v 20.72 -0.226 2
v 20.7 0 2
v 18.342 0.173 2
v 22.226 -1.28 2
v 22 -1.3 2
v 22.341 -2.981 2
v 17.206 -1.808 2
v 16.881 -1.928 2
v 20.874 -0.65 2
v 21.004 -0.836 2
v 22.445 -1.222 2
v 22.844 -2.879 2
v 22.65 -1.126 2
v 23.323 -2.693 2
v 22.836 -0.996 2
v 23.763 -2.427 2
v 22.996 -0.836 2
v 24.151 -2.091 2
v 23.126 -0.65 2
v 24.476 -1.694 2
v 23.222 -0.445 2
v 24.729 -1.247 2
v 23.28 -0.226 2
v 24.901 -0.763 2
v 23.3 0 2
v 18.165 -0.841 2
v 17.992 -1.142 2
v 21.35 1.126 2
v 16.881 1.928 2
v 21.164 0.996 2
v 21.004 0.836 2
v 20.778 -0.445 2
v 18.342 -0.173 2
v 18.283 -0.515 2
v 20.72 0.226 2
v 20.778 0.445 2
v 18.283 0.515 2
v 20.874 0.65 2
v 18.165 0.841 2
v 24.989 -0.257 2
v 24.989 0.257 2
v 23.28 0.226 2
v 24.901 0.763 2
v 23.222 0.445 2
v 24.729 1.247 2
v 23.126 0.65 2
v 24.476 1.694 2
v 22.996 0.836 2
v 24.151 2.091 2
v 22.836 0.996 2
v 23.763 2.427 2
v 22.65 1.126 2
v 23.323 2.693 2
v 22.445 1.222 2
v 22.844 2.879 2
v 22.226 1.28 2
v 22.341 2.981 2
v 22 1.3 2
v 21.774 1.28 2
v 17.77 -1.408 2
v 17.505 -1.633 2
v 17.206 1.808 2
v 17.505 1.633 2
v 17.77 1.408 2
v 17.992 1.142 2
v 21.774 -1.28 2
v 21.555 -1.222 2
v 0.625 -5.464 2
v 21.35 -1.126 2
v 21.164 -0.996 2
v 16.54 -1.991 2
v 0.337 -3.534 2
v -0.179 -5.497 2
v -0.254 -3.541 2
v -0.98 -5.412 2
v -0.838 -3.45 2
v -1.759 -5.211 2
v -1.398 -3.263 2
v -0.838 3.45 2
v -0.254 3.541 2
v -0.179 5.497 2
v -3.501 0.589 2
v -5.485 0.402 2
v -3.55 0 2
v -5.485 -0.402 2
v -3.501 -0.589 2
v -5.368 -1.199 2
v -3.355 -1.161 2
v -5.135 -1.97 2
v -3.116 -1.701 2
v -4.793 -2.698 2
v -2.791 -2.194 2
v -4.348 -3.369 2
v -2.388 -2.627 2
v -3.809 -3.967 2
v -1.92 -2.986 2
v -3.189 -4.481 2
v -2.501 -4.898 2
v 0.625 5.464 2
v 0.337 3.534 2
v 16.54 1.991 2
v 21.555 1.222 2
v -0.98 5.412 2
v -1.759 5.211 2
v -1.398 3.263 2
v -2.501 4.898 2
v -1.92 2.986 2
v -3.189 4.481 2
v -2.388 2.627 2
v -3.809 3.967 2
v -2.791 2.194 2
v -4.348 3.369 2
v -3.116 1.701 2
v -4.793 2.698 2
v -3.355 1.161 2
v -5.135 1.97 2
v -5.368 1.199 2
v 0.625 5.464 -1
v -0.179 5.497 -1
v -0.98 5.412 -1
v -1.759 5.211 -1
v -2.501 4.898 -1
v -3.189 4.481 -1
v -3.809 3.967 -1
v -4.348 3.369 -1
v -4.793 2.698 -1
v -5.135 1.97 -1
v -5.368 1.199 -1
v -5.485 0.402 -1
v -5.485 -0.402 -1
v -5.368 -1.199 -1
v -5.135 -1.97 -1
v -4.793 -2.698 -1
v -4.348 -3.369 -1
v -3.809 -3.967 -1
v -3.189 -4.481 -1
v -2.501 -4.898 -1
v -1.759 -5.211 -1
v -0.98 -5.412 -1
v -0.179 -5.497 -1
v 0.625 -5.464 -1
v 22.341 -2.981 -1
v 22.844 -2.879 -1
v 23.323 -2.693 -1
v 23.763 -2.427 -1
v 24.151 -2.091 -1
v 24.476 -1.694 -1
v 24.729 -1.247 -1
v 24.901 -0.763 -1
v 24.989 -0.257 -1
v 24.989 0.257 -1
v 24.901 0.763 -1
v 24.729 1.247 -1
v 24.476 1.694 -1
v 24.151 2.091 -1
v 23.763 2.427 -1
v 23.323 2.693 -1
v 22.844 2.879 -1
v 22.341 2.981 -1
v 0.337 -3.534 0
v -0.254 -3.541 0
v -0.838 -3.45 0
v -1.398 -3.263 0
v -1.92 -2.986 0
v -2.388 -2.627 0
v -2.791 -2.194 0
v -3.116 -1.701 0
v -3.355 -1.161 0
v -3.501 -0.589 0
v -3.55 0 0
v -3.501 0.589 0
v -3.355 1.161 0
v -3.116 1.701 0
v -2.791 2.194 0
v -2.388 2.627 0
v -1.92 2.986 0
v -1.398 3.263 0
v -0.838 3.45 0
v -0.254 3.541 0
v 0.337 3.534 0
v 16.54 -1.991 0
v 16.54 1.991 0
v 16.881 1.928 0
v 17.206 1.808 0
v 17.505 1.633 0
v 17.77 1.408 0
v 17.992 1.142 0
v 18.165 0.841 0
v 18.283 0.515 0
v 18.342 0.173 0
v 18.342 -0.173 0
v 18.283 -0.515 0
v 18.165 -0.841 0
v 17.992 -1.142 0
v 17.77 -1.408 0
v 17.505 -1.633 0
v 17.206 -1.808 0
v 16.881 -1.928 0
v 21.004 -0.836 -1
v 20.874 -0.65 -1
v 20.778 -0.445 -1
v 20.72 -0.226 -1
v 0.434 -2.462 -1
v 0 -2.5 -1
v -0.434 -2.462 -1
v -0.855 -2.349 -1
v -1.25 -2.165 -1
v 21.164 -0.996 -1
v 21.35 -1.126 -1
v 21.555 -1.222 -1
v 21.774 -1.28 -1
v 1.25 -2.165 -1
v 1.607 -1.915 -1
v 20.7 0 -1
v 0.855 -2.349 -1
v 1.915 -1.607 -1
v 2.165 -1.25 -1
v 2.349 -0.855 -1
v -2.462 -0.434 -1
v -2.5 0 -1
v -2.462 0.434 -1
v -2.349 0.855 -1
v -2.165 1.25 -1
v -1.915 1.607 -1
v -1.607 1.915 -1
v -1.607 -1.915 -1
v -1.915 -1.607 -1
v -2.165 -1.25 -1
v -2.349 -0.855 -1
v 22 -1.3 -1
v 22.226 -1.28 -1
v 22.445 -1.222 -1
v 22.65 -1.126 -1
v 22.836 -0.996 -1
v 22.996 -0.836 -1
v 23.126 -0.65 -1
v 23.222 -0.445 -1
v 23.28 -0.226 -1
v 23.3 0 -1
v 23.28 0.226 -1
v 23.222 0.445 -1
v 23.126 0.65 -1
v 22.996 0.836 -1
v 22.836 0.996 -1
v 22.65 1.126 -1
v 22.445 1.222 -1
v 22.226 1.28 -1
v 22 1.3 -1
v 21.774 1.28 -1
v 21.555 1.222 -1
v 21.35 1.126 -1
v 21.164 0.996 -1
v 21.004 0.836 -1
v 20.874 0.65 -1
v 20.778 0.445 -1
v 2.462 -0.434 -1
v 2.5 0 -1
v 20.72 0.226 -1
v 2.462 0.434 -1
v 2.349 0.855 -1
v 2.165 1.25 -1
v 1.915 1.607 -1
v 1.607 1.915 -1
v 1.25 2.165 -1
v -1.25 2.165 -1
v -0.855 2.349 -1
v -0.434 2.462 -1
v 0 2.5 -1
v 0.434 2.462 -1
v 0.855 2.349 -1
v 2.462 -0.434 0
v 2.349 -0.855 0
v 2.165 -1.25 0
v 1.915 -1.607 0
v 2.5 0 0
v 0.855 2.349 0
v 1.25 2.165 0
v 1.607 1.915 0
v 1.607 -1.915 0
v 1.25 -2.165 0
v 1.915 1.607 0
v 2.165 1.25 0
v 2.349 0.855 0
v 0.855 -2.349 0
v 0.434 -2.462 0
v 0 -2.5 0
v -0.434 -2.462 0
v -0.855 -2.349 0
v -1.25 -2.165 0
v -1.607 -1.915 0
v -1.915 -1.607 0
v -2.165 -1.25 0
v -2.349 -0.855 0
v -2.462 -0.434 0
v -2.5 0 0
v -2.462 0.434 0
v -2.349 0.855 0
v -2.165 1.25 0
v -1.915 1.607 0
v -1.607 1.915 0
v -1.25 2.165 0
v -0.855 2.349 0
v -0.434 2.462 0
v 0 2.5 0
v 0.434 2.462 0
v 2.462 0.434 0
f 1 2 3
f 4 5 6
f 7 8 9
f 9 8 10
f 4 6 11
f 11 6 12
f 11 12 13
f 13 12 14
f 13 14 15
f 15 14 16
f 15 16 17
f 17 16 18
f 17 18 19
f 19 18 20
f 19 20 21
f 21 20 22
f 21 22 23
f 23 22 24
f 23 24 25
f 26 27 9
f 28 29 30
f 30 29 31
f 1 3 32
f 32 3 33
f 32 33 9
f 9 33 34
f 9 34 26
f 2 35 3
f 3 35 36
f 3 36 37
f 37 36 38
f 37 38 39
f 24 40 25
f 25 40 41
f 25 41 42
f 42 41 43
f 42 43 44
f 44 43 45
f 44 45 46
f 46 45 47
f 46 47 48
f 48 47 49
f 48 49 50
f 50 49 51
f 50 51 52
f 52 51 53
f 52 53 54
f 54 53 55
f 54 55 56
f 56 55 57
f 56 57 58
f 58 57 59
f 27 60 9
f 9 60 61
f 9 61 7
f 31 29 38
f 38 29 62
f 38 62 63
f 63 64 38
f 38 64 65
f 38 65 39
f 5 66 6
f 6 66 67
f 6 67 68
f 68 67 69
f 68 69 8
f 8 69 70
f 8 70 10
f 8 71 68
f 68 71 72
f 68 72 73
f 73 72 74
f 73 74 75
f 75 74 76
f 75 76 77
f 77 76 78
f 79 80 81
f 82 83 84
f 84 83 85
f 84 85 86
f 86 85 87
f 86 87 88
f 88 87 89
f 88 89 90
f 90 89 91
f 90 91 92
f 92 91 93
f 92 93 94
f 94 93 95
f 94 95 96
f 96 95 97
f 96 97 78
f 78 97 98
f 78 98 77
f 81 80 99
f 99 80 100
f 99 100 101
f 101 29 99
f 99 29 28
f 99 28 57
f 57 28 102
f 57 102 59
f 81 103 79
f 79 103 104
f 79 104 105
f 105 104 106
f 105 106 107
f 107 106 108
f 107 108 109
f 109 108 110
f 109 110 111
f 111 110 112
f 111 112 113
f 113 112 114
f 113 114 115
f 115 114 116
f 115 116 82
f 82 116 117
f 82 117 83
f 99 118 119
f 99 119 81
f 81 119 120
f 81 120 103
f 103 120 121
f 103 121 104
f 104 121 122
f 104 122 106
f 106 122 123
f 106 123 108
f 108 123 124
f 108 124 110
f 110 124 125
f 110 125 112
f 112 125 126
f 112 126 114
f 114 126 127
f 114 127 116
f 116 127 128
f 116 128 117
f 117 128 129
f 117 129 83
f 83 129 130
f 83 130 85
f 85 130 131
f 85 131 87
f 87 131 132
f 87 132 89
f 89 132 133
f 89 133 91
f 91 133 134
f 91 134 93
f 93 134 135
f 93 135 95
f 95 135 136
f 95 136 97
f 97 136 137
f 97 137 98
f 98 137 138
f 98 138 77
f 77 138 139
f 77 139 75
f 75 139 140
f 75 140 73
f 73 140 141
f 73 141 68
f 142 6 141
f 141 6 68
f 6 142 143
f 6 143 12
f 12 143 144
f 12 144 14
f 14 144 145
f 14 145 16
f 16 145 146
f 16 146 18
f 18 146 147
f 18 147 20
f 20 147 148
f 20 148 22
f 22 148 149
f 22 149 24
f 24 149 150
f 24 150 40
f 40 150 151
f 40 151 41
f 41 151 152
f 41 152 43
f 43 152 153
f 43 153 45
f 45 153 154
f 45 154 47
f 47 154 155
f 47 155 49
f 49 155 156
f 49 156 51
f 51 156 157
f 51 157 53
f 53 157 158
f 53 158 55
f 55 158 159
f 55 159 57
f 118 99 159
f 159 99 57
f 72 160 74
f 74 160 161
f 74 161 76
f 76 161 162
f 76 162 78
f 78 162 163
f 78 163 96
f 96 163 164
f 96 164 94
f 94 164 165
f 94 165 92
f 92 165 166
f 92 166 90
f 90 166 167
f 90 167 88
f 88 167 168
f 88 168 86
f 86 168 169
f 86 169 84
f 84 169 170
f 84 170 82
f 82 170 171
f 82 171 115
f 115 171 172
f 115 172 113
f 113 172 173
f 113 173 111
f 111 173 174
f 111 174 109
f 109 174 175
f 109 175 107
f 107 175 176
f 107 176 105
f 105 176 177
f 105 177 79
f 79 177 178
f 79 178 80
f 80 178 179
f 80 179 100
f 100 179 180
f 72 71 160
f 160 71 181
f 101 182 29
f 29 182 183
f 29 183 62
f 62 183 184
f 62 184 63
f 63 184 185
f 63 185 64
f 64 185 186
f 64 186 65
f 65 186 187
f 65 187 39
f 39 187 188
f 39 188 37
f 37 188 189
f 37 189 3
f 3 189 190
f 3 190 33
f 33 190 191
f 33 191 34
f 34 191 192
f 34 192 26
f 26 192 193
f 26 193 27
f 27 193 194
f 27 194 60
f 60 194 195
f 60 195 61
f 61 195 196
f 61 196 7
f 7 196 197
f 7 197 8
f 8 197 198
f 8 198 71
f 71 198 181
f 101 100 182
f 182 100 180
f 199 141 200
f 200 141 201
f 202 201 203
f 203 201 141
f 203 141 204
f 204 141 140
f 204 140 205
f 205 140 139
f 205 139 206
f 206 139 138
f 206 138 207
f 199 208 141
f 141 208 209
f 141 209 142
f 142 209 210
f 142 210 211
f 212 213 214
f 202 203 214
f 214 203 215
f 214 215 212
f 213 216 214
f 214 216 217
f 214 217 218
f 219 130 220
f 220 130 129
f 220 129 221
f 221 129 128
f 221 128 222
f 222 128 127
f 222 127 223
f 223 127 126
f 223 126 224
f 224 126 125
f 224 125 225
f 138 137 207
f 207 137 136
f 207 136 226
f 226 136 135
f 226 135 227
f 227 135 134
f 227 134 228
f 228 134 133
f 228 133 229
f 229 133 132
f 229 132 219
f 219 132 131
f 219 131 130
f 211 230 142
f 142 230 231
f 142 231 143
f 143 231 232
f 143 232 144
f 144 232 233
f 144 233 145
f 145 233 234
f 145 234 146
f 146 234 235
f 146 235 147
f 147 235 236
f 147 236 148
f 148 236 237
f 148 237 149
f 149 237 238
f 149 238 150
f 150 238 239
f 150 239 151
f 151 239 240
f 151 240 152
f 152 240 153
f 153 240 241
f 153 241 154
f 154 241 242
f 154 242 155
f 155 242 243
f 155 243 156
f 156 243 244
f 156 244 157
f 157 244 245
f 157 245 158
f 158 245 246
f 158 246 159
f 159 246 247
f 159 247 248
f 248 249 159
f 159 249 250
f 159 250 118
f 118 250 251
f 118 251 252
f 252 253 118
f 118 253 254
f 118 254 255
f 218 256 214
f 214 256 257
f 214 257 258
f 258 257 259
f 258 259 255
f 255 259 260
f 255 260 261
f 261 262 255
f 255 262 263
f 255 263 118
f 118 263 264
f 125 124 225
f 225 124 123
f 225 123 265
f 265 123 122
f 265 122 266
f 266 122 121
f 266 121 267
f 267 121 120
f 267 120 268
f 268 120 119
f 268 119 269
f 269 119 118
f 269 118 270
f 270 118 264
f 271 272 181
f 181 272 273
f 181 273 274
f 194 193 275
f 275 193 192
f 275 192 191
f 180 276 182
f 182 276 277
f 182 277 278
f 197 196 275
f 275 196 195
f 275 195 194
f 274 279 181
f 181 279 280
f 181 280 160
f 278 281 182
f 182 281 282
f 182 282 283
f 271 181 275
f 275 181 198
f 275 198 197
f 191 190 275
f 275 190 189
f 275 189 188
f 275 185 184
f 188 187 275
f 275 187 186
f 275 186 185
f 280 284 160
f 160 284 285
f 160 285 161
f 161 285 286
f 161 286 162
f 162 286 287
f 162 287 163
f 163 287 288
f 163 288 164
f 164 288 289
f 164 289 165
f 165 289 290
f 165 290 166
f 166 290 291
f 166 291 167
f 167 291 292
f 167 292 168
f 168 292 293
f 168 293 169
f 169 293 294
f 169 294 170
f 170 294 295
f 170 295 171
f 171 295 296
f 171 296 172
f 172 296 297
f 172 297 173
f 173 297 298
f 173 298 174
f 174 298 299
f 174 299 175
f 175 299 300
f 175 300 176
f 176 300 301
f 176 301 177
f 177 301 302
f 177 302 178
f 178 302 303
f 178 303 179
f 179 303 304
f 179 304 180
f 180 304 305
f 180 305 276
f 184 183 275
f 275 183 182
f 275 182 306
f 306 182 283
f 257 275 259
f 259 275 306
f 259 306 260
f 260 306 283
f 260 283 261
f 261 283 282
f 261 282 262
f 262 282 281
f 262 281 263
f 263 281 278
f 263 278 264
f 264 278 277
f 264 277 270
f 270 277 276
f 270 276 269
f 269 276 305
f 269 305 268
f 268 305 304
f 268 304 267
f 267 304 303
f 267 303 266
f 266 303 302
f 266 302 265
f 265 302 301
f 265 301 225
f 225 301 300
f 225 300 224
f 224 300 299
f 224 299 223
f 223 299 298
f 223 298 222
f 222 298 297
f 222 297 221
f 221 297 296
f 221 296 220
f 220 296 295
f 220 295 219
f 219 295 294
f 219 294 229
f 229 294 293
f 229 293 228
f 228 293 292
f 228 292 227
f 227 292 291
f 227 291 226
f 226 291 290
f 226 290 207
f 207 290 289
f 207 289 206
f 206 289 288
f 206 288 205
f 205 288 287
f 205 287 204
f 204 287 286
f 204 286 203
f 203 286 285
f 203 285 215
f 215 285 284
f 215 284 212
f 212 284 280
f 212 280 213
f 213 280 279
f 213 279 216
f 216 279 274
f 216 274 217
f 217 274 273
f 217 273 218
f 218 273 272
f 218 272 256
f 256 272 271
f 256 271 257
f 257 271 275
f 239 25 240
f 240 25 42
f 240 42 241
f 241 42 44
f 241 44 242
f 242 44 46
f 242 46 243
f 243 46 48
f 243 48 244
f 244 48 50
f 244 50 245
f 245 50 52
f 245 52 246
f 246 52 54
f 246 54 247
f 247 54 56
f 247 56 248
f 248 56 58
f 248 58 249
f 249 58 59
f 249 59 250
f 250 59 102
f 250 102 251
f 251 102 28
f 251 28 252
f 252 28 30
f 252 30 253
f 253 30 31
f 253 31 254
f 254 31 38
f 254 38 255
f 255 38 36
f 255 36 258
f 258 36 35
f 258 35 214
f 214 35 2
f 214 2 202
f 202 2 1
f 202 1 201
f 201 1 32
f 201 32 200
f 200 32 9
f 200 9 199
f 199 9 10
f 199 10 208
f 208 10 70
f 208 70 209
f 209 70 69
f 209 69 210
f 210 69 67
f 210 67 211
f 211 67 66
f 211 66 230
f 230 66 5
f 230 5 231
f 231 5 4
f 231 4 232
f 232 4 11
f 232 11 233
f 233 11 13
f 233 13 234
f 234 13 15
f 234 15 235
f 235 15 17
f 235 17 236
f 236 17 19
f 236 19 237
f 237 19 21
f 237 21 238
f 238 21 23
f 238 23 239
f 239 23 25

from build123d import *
from build123d.topology import SkipClean

# Parameters (mm, degrees)
MAIN_DEPTH            = 2
ESQUISSE2_R           = 2.5
ORIGINALBRACKET_DEPTH = 1
ESQUISSE3_R           = 1.3
FIXINGHOLE_DEPTH      = 26.773047938


with BuildPart() as part:
    # Esquisse1 → Main (new body)
    with BuildSketch(Plane.XY):
        with BuildLine():
            Line((0.625, 5.464373249), (22.340909091, 2.980567227))
            ThreePointArc((22.340909091, 2.980567227), (25, 0), (22.340909091, -2.980567227))
            Line((22.340909091, -2.980567227), (0.625, -5.464373249))
            ThreePointArc((0.625, -5.464373249), (-5.5, 0), (0.625, 5.464373249))
        make_face()
        with BuildLine():
            Line((0.336544343, 3.534011588), (16.539602446, 1.990992444))
            ThreePointArc((16.539602446, 1.990992444), (18.35, 0), (16.539602446, -1.990992444))
            Line((16.539602446, -1.990992444), (0.336544343, -3.534011588))
            ThreePointArc((0.336544343, -3.534011588), (-3.55, 0), (0.336544343, 3.534011588))
        make_face(mode=Mode.SUBTRACT)
    extrude(amount=MAIN_DEPTH)

    # Esquisse2 → OriginalBracket (add)
    with SkipClean():  # the faces are left unmerged after this step: merging them gives an invalid solid
        with BuildSketch(Plane(origin=(0, 0, 0), x_dir=(-1, 0, 0), z_dir=(0, 0, -1))):
            with BuildLine():
                Line((-0.625, -5.464373249), (-22.340909091, -2.980567227))
                ThreePointArc((-22.340909091, -2.980567227), (-25, 0), (-22.340909091, 2.980567227))
                Line((-22.340909091, 2.980567227), (-0.625, 5.464373249))
                ThreePointArc((-0.625, 5.464373249), (5.5, 0), (-0.625, -5.464373249))
            make_face()
            Circle(ESQUISSE2_R, mode=Mode.SUBTRACT)
        extrude(amount=ORIGINALBRACKET_DEPTH)

    # Esquisse3 → FixingHole (cut, through all)
    with SkipClean():  # the faces are left unmerged after this step: merging them gives an invalid solid
        with BuildSketch(Plane.XY.offset(2)):
            with Locations((22, 0)):
                Circle(ESQUISSE3_R)
        extrude(amount=-FIXINGHOLE_DEPTH, mode=Mode.SUBTRACT)


solid = part.part
